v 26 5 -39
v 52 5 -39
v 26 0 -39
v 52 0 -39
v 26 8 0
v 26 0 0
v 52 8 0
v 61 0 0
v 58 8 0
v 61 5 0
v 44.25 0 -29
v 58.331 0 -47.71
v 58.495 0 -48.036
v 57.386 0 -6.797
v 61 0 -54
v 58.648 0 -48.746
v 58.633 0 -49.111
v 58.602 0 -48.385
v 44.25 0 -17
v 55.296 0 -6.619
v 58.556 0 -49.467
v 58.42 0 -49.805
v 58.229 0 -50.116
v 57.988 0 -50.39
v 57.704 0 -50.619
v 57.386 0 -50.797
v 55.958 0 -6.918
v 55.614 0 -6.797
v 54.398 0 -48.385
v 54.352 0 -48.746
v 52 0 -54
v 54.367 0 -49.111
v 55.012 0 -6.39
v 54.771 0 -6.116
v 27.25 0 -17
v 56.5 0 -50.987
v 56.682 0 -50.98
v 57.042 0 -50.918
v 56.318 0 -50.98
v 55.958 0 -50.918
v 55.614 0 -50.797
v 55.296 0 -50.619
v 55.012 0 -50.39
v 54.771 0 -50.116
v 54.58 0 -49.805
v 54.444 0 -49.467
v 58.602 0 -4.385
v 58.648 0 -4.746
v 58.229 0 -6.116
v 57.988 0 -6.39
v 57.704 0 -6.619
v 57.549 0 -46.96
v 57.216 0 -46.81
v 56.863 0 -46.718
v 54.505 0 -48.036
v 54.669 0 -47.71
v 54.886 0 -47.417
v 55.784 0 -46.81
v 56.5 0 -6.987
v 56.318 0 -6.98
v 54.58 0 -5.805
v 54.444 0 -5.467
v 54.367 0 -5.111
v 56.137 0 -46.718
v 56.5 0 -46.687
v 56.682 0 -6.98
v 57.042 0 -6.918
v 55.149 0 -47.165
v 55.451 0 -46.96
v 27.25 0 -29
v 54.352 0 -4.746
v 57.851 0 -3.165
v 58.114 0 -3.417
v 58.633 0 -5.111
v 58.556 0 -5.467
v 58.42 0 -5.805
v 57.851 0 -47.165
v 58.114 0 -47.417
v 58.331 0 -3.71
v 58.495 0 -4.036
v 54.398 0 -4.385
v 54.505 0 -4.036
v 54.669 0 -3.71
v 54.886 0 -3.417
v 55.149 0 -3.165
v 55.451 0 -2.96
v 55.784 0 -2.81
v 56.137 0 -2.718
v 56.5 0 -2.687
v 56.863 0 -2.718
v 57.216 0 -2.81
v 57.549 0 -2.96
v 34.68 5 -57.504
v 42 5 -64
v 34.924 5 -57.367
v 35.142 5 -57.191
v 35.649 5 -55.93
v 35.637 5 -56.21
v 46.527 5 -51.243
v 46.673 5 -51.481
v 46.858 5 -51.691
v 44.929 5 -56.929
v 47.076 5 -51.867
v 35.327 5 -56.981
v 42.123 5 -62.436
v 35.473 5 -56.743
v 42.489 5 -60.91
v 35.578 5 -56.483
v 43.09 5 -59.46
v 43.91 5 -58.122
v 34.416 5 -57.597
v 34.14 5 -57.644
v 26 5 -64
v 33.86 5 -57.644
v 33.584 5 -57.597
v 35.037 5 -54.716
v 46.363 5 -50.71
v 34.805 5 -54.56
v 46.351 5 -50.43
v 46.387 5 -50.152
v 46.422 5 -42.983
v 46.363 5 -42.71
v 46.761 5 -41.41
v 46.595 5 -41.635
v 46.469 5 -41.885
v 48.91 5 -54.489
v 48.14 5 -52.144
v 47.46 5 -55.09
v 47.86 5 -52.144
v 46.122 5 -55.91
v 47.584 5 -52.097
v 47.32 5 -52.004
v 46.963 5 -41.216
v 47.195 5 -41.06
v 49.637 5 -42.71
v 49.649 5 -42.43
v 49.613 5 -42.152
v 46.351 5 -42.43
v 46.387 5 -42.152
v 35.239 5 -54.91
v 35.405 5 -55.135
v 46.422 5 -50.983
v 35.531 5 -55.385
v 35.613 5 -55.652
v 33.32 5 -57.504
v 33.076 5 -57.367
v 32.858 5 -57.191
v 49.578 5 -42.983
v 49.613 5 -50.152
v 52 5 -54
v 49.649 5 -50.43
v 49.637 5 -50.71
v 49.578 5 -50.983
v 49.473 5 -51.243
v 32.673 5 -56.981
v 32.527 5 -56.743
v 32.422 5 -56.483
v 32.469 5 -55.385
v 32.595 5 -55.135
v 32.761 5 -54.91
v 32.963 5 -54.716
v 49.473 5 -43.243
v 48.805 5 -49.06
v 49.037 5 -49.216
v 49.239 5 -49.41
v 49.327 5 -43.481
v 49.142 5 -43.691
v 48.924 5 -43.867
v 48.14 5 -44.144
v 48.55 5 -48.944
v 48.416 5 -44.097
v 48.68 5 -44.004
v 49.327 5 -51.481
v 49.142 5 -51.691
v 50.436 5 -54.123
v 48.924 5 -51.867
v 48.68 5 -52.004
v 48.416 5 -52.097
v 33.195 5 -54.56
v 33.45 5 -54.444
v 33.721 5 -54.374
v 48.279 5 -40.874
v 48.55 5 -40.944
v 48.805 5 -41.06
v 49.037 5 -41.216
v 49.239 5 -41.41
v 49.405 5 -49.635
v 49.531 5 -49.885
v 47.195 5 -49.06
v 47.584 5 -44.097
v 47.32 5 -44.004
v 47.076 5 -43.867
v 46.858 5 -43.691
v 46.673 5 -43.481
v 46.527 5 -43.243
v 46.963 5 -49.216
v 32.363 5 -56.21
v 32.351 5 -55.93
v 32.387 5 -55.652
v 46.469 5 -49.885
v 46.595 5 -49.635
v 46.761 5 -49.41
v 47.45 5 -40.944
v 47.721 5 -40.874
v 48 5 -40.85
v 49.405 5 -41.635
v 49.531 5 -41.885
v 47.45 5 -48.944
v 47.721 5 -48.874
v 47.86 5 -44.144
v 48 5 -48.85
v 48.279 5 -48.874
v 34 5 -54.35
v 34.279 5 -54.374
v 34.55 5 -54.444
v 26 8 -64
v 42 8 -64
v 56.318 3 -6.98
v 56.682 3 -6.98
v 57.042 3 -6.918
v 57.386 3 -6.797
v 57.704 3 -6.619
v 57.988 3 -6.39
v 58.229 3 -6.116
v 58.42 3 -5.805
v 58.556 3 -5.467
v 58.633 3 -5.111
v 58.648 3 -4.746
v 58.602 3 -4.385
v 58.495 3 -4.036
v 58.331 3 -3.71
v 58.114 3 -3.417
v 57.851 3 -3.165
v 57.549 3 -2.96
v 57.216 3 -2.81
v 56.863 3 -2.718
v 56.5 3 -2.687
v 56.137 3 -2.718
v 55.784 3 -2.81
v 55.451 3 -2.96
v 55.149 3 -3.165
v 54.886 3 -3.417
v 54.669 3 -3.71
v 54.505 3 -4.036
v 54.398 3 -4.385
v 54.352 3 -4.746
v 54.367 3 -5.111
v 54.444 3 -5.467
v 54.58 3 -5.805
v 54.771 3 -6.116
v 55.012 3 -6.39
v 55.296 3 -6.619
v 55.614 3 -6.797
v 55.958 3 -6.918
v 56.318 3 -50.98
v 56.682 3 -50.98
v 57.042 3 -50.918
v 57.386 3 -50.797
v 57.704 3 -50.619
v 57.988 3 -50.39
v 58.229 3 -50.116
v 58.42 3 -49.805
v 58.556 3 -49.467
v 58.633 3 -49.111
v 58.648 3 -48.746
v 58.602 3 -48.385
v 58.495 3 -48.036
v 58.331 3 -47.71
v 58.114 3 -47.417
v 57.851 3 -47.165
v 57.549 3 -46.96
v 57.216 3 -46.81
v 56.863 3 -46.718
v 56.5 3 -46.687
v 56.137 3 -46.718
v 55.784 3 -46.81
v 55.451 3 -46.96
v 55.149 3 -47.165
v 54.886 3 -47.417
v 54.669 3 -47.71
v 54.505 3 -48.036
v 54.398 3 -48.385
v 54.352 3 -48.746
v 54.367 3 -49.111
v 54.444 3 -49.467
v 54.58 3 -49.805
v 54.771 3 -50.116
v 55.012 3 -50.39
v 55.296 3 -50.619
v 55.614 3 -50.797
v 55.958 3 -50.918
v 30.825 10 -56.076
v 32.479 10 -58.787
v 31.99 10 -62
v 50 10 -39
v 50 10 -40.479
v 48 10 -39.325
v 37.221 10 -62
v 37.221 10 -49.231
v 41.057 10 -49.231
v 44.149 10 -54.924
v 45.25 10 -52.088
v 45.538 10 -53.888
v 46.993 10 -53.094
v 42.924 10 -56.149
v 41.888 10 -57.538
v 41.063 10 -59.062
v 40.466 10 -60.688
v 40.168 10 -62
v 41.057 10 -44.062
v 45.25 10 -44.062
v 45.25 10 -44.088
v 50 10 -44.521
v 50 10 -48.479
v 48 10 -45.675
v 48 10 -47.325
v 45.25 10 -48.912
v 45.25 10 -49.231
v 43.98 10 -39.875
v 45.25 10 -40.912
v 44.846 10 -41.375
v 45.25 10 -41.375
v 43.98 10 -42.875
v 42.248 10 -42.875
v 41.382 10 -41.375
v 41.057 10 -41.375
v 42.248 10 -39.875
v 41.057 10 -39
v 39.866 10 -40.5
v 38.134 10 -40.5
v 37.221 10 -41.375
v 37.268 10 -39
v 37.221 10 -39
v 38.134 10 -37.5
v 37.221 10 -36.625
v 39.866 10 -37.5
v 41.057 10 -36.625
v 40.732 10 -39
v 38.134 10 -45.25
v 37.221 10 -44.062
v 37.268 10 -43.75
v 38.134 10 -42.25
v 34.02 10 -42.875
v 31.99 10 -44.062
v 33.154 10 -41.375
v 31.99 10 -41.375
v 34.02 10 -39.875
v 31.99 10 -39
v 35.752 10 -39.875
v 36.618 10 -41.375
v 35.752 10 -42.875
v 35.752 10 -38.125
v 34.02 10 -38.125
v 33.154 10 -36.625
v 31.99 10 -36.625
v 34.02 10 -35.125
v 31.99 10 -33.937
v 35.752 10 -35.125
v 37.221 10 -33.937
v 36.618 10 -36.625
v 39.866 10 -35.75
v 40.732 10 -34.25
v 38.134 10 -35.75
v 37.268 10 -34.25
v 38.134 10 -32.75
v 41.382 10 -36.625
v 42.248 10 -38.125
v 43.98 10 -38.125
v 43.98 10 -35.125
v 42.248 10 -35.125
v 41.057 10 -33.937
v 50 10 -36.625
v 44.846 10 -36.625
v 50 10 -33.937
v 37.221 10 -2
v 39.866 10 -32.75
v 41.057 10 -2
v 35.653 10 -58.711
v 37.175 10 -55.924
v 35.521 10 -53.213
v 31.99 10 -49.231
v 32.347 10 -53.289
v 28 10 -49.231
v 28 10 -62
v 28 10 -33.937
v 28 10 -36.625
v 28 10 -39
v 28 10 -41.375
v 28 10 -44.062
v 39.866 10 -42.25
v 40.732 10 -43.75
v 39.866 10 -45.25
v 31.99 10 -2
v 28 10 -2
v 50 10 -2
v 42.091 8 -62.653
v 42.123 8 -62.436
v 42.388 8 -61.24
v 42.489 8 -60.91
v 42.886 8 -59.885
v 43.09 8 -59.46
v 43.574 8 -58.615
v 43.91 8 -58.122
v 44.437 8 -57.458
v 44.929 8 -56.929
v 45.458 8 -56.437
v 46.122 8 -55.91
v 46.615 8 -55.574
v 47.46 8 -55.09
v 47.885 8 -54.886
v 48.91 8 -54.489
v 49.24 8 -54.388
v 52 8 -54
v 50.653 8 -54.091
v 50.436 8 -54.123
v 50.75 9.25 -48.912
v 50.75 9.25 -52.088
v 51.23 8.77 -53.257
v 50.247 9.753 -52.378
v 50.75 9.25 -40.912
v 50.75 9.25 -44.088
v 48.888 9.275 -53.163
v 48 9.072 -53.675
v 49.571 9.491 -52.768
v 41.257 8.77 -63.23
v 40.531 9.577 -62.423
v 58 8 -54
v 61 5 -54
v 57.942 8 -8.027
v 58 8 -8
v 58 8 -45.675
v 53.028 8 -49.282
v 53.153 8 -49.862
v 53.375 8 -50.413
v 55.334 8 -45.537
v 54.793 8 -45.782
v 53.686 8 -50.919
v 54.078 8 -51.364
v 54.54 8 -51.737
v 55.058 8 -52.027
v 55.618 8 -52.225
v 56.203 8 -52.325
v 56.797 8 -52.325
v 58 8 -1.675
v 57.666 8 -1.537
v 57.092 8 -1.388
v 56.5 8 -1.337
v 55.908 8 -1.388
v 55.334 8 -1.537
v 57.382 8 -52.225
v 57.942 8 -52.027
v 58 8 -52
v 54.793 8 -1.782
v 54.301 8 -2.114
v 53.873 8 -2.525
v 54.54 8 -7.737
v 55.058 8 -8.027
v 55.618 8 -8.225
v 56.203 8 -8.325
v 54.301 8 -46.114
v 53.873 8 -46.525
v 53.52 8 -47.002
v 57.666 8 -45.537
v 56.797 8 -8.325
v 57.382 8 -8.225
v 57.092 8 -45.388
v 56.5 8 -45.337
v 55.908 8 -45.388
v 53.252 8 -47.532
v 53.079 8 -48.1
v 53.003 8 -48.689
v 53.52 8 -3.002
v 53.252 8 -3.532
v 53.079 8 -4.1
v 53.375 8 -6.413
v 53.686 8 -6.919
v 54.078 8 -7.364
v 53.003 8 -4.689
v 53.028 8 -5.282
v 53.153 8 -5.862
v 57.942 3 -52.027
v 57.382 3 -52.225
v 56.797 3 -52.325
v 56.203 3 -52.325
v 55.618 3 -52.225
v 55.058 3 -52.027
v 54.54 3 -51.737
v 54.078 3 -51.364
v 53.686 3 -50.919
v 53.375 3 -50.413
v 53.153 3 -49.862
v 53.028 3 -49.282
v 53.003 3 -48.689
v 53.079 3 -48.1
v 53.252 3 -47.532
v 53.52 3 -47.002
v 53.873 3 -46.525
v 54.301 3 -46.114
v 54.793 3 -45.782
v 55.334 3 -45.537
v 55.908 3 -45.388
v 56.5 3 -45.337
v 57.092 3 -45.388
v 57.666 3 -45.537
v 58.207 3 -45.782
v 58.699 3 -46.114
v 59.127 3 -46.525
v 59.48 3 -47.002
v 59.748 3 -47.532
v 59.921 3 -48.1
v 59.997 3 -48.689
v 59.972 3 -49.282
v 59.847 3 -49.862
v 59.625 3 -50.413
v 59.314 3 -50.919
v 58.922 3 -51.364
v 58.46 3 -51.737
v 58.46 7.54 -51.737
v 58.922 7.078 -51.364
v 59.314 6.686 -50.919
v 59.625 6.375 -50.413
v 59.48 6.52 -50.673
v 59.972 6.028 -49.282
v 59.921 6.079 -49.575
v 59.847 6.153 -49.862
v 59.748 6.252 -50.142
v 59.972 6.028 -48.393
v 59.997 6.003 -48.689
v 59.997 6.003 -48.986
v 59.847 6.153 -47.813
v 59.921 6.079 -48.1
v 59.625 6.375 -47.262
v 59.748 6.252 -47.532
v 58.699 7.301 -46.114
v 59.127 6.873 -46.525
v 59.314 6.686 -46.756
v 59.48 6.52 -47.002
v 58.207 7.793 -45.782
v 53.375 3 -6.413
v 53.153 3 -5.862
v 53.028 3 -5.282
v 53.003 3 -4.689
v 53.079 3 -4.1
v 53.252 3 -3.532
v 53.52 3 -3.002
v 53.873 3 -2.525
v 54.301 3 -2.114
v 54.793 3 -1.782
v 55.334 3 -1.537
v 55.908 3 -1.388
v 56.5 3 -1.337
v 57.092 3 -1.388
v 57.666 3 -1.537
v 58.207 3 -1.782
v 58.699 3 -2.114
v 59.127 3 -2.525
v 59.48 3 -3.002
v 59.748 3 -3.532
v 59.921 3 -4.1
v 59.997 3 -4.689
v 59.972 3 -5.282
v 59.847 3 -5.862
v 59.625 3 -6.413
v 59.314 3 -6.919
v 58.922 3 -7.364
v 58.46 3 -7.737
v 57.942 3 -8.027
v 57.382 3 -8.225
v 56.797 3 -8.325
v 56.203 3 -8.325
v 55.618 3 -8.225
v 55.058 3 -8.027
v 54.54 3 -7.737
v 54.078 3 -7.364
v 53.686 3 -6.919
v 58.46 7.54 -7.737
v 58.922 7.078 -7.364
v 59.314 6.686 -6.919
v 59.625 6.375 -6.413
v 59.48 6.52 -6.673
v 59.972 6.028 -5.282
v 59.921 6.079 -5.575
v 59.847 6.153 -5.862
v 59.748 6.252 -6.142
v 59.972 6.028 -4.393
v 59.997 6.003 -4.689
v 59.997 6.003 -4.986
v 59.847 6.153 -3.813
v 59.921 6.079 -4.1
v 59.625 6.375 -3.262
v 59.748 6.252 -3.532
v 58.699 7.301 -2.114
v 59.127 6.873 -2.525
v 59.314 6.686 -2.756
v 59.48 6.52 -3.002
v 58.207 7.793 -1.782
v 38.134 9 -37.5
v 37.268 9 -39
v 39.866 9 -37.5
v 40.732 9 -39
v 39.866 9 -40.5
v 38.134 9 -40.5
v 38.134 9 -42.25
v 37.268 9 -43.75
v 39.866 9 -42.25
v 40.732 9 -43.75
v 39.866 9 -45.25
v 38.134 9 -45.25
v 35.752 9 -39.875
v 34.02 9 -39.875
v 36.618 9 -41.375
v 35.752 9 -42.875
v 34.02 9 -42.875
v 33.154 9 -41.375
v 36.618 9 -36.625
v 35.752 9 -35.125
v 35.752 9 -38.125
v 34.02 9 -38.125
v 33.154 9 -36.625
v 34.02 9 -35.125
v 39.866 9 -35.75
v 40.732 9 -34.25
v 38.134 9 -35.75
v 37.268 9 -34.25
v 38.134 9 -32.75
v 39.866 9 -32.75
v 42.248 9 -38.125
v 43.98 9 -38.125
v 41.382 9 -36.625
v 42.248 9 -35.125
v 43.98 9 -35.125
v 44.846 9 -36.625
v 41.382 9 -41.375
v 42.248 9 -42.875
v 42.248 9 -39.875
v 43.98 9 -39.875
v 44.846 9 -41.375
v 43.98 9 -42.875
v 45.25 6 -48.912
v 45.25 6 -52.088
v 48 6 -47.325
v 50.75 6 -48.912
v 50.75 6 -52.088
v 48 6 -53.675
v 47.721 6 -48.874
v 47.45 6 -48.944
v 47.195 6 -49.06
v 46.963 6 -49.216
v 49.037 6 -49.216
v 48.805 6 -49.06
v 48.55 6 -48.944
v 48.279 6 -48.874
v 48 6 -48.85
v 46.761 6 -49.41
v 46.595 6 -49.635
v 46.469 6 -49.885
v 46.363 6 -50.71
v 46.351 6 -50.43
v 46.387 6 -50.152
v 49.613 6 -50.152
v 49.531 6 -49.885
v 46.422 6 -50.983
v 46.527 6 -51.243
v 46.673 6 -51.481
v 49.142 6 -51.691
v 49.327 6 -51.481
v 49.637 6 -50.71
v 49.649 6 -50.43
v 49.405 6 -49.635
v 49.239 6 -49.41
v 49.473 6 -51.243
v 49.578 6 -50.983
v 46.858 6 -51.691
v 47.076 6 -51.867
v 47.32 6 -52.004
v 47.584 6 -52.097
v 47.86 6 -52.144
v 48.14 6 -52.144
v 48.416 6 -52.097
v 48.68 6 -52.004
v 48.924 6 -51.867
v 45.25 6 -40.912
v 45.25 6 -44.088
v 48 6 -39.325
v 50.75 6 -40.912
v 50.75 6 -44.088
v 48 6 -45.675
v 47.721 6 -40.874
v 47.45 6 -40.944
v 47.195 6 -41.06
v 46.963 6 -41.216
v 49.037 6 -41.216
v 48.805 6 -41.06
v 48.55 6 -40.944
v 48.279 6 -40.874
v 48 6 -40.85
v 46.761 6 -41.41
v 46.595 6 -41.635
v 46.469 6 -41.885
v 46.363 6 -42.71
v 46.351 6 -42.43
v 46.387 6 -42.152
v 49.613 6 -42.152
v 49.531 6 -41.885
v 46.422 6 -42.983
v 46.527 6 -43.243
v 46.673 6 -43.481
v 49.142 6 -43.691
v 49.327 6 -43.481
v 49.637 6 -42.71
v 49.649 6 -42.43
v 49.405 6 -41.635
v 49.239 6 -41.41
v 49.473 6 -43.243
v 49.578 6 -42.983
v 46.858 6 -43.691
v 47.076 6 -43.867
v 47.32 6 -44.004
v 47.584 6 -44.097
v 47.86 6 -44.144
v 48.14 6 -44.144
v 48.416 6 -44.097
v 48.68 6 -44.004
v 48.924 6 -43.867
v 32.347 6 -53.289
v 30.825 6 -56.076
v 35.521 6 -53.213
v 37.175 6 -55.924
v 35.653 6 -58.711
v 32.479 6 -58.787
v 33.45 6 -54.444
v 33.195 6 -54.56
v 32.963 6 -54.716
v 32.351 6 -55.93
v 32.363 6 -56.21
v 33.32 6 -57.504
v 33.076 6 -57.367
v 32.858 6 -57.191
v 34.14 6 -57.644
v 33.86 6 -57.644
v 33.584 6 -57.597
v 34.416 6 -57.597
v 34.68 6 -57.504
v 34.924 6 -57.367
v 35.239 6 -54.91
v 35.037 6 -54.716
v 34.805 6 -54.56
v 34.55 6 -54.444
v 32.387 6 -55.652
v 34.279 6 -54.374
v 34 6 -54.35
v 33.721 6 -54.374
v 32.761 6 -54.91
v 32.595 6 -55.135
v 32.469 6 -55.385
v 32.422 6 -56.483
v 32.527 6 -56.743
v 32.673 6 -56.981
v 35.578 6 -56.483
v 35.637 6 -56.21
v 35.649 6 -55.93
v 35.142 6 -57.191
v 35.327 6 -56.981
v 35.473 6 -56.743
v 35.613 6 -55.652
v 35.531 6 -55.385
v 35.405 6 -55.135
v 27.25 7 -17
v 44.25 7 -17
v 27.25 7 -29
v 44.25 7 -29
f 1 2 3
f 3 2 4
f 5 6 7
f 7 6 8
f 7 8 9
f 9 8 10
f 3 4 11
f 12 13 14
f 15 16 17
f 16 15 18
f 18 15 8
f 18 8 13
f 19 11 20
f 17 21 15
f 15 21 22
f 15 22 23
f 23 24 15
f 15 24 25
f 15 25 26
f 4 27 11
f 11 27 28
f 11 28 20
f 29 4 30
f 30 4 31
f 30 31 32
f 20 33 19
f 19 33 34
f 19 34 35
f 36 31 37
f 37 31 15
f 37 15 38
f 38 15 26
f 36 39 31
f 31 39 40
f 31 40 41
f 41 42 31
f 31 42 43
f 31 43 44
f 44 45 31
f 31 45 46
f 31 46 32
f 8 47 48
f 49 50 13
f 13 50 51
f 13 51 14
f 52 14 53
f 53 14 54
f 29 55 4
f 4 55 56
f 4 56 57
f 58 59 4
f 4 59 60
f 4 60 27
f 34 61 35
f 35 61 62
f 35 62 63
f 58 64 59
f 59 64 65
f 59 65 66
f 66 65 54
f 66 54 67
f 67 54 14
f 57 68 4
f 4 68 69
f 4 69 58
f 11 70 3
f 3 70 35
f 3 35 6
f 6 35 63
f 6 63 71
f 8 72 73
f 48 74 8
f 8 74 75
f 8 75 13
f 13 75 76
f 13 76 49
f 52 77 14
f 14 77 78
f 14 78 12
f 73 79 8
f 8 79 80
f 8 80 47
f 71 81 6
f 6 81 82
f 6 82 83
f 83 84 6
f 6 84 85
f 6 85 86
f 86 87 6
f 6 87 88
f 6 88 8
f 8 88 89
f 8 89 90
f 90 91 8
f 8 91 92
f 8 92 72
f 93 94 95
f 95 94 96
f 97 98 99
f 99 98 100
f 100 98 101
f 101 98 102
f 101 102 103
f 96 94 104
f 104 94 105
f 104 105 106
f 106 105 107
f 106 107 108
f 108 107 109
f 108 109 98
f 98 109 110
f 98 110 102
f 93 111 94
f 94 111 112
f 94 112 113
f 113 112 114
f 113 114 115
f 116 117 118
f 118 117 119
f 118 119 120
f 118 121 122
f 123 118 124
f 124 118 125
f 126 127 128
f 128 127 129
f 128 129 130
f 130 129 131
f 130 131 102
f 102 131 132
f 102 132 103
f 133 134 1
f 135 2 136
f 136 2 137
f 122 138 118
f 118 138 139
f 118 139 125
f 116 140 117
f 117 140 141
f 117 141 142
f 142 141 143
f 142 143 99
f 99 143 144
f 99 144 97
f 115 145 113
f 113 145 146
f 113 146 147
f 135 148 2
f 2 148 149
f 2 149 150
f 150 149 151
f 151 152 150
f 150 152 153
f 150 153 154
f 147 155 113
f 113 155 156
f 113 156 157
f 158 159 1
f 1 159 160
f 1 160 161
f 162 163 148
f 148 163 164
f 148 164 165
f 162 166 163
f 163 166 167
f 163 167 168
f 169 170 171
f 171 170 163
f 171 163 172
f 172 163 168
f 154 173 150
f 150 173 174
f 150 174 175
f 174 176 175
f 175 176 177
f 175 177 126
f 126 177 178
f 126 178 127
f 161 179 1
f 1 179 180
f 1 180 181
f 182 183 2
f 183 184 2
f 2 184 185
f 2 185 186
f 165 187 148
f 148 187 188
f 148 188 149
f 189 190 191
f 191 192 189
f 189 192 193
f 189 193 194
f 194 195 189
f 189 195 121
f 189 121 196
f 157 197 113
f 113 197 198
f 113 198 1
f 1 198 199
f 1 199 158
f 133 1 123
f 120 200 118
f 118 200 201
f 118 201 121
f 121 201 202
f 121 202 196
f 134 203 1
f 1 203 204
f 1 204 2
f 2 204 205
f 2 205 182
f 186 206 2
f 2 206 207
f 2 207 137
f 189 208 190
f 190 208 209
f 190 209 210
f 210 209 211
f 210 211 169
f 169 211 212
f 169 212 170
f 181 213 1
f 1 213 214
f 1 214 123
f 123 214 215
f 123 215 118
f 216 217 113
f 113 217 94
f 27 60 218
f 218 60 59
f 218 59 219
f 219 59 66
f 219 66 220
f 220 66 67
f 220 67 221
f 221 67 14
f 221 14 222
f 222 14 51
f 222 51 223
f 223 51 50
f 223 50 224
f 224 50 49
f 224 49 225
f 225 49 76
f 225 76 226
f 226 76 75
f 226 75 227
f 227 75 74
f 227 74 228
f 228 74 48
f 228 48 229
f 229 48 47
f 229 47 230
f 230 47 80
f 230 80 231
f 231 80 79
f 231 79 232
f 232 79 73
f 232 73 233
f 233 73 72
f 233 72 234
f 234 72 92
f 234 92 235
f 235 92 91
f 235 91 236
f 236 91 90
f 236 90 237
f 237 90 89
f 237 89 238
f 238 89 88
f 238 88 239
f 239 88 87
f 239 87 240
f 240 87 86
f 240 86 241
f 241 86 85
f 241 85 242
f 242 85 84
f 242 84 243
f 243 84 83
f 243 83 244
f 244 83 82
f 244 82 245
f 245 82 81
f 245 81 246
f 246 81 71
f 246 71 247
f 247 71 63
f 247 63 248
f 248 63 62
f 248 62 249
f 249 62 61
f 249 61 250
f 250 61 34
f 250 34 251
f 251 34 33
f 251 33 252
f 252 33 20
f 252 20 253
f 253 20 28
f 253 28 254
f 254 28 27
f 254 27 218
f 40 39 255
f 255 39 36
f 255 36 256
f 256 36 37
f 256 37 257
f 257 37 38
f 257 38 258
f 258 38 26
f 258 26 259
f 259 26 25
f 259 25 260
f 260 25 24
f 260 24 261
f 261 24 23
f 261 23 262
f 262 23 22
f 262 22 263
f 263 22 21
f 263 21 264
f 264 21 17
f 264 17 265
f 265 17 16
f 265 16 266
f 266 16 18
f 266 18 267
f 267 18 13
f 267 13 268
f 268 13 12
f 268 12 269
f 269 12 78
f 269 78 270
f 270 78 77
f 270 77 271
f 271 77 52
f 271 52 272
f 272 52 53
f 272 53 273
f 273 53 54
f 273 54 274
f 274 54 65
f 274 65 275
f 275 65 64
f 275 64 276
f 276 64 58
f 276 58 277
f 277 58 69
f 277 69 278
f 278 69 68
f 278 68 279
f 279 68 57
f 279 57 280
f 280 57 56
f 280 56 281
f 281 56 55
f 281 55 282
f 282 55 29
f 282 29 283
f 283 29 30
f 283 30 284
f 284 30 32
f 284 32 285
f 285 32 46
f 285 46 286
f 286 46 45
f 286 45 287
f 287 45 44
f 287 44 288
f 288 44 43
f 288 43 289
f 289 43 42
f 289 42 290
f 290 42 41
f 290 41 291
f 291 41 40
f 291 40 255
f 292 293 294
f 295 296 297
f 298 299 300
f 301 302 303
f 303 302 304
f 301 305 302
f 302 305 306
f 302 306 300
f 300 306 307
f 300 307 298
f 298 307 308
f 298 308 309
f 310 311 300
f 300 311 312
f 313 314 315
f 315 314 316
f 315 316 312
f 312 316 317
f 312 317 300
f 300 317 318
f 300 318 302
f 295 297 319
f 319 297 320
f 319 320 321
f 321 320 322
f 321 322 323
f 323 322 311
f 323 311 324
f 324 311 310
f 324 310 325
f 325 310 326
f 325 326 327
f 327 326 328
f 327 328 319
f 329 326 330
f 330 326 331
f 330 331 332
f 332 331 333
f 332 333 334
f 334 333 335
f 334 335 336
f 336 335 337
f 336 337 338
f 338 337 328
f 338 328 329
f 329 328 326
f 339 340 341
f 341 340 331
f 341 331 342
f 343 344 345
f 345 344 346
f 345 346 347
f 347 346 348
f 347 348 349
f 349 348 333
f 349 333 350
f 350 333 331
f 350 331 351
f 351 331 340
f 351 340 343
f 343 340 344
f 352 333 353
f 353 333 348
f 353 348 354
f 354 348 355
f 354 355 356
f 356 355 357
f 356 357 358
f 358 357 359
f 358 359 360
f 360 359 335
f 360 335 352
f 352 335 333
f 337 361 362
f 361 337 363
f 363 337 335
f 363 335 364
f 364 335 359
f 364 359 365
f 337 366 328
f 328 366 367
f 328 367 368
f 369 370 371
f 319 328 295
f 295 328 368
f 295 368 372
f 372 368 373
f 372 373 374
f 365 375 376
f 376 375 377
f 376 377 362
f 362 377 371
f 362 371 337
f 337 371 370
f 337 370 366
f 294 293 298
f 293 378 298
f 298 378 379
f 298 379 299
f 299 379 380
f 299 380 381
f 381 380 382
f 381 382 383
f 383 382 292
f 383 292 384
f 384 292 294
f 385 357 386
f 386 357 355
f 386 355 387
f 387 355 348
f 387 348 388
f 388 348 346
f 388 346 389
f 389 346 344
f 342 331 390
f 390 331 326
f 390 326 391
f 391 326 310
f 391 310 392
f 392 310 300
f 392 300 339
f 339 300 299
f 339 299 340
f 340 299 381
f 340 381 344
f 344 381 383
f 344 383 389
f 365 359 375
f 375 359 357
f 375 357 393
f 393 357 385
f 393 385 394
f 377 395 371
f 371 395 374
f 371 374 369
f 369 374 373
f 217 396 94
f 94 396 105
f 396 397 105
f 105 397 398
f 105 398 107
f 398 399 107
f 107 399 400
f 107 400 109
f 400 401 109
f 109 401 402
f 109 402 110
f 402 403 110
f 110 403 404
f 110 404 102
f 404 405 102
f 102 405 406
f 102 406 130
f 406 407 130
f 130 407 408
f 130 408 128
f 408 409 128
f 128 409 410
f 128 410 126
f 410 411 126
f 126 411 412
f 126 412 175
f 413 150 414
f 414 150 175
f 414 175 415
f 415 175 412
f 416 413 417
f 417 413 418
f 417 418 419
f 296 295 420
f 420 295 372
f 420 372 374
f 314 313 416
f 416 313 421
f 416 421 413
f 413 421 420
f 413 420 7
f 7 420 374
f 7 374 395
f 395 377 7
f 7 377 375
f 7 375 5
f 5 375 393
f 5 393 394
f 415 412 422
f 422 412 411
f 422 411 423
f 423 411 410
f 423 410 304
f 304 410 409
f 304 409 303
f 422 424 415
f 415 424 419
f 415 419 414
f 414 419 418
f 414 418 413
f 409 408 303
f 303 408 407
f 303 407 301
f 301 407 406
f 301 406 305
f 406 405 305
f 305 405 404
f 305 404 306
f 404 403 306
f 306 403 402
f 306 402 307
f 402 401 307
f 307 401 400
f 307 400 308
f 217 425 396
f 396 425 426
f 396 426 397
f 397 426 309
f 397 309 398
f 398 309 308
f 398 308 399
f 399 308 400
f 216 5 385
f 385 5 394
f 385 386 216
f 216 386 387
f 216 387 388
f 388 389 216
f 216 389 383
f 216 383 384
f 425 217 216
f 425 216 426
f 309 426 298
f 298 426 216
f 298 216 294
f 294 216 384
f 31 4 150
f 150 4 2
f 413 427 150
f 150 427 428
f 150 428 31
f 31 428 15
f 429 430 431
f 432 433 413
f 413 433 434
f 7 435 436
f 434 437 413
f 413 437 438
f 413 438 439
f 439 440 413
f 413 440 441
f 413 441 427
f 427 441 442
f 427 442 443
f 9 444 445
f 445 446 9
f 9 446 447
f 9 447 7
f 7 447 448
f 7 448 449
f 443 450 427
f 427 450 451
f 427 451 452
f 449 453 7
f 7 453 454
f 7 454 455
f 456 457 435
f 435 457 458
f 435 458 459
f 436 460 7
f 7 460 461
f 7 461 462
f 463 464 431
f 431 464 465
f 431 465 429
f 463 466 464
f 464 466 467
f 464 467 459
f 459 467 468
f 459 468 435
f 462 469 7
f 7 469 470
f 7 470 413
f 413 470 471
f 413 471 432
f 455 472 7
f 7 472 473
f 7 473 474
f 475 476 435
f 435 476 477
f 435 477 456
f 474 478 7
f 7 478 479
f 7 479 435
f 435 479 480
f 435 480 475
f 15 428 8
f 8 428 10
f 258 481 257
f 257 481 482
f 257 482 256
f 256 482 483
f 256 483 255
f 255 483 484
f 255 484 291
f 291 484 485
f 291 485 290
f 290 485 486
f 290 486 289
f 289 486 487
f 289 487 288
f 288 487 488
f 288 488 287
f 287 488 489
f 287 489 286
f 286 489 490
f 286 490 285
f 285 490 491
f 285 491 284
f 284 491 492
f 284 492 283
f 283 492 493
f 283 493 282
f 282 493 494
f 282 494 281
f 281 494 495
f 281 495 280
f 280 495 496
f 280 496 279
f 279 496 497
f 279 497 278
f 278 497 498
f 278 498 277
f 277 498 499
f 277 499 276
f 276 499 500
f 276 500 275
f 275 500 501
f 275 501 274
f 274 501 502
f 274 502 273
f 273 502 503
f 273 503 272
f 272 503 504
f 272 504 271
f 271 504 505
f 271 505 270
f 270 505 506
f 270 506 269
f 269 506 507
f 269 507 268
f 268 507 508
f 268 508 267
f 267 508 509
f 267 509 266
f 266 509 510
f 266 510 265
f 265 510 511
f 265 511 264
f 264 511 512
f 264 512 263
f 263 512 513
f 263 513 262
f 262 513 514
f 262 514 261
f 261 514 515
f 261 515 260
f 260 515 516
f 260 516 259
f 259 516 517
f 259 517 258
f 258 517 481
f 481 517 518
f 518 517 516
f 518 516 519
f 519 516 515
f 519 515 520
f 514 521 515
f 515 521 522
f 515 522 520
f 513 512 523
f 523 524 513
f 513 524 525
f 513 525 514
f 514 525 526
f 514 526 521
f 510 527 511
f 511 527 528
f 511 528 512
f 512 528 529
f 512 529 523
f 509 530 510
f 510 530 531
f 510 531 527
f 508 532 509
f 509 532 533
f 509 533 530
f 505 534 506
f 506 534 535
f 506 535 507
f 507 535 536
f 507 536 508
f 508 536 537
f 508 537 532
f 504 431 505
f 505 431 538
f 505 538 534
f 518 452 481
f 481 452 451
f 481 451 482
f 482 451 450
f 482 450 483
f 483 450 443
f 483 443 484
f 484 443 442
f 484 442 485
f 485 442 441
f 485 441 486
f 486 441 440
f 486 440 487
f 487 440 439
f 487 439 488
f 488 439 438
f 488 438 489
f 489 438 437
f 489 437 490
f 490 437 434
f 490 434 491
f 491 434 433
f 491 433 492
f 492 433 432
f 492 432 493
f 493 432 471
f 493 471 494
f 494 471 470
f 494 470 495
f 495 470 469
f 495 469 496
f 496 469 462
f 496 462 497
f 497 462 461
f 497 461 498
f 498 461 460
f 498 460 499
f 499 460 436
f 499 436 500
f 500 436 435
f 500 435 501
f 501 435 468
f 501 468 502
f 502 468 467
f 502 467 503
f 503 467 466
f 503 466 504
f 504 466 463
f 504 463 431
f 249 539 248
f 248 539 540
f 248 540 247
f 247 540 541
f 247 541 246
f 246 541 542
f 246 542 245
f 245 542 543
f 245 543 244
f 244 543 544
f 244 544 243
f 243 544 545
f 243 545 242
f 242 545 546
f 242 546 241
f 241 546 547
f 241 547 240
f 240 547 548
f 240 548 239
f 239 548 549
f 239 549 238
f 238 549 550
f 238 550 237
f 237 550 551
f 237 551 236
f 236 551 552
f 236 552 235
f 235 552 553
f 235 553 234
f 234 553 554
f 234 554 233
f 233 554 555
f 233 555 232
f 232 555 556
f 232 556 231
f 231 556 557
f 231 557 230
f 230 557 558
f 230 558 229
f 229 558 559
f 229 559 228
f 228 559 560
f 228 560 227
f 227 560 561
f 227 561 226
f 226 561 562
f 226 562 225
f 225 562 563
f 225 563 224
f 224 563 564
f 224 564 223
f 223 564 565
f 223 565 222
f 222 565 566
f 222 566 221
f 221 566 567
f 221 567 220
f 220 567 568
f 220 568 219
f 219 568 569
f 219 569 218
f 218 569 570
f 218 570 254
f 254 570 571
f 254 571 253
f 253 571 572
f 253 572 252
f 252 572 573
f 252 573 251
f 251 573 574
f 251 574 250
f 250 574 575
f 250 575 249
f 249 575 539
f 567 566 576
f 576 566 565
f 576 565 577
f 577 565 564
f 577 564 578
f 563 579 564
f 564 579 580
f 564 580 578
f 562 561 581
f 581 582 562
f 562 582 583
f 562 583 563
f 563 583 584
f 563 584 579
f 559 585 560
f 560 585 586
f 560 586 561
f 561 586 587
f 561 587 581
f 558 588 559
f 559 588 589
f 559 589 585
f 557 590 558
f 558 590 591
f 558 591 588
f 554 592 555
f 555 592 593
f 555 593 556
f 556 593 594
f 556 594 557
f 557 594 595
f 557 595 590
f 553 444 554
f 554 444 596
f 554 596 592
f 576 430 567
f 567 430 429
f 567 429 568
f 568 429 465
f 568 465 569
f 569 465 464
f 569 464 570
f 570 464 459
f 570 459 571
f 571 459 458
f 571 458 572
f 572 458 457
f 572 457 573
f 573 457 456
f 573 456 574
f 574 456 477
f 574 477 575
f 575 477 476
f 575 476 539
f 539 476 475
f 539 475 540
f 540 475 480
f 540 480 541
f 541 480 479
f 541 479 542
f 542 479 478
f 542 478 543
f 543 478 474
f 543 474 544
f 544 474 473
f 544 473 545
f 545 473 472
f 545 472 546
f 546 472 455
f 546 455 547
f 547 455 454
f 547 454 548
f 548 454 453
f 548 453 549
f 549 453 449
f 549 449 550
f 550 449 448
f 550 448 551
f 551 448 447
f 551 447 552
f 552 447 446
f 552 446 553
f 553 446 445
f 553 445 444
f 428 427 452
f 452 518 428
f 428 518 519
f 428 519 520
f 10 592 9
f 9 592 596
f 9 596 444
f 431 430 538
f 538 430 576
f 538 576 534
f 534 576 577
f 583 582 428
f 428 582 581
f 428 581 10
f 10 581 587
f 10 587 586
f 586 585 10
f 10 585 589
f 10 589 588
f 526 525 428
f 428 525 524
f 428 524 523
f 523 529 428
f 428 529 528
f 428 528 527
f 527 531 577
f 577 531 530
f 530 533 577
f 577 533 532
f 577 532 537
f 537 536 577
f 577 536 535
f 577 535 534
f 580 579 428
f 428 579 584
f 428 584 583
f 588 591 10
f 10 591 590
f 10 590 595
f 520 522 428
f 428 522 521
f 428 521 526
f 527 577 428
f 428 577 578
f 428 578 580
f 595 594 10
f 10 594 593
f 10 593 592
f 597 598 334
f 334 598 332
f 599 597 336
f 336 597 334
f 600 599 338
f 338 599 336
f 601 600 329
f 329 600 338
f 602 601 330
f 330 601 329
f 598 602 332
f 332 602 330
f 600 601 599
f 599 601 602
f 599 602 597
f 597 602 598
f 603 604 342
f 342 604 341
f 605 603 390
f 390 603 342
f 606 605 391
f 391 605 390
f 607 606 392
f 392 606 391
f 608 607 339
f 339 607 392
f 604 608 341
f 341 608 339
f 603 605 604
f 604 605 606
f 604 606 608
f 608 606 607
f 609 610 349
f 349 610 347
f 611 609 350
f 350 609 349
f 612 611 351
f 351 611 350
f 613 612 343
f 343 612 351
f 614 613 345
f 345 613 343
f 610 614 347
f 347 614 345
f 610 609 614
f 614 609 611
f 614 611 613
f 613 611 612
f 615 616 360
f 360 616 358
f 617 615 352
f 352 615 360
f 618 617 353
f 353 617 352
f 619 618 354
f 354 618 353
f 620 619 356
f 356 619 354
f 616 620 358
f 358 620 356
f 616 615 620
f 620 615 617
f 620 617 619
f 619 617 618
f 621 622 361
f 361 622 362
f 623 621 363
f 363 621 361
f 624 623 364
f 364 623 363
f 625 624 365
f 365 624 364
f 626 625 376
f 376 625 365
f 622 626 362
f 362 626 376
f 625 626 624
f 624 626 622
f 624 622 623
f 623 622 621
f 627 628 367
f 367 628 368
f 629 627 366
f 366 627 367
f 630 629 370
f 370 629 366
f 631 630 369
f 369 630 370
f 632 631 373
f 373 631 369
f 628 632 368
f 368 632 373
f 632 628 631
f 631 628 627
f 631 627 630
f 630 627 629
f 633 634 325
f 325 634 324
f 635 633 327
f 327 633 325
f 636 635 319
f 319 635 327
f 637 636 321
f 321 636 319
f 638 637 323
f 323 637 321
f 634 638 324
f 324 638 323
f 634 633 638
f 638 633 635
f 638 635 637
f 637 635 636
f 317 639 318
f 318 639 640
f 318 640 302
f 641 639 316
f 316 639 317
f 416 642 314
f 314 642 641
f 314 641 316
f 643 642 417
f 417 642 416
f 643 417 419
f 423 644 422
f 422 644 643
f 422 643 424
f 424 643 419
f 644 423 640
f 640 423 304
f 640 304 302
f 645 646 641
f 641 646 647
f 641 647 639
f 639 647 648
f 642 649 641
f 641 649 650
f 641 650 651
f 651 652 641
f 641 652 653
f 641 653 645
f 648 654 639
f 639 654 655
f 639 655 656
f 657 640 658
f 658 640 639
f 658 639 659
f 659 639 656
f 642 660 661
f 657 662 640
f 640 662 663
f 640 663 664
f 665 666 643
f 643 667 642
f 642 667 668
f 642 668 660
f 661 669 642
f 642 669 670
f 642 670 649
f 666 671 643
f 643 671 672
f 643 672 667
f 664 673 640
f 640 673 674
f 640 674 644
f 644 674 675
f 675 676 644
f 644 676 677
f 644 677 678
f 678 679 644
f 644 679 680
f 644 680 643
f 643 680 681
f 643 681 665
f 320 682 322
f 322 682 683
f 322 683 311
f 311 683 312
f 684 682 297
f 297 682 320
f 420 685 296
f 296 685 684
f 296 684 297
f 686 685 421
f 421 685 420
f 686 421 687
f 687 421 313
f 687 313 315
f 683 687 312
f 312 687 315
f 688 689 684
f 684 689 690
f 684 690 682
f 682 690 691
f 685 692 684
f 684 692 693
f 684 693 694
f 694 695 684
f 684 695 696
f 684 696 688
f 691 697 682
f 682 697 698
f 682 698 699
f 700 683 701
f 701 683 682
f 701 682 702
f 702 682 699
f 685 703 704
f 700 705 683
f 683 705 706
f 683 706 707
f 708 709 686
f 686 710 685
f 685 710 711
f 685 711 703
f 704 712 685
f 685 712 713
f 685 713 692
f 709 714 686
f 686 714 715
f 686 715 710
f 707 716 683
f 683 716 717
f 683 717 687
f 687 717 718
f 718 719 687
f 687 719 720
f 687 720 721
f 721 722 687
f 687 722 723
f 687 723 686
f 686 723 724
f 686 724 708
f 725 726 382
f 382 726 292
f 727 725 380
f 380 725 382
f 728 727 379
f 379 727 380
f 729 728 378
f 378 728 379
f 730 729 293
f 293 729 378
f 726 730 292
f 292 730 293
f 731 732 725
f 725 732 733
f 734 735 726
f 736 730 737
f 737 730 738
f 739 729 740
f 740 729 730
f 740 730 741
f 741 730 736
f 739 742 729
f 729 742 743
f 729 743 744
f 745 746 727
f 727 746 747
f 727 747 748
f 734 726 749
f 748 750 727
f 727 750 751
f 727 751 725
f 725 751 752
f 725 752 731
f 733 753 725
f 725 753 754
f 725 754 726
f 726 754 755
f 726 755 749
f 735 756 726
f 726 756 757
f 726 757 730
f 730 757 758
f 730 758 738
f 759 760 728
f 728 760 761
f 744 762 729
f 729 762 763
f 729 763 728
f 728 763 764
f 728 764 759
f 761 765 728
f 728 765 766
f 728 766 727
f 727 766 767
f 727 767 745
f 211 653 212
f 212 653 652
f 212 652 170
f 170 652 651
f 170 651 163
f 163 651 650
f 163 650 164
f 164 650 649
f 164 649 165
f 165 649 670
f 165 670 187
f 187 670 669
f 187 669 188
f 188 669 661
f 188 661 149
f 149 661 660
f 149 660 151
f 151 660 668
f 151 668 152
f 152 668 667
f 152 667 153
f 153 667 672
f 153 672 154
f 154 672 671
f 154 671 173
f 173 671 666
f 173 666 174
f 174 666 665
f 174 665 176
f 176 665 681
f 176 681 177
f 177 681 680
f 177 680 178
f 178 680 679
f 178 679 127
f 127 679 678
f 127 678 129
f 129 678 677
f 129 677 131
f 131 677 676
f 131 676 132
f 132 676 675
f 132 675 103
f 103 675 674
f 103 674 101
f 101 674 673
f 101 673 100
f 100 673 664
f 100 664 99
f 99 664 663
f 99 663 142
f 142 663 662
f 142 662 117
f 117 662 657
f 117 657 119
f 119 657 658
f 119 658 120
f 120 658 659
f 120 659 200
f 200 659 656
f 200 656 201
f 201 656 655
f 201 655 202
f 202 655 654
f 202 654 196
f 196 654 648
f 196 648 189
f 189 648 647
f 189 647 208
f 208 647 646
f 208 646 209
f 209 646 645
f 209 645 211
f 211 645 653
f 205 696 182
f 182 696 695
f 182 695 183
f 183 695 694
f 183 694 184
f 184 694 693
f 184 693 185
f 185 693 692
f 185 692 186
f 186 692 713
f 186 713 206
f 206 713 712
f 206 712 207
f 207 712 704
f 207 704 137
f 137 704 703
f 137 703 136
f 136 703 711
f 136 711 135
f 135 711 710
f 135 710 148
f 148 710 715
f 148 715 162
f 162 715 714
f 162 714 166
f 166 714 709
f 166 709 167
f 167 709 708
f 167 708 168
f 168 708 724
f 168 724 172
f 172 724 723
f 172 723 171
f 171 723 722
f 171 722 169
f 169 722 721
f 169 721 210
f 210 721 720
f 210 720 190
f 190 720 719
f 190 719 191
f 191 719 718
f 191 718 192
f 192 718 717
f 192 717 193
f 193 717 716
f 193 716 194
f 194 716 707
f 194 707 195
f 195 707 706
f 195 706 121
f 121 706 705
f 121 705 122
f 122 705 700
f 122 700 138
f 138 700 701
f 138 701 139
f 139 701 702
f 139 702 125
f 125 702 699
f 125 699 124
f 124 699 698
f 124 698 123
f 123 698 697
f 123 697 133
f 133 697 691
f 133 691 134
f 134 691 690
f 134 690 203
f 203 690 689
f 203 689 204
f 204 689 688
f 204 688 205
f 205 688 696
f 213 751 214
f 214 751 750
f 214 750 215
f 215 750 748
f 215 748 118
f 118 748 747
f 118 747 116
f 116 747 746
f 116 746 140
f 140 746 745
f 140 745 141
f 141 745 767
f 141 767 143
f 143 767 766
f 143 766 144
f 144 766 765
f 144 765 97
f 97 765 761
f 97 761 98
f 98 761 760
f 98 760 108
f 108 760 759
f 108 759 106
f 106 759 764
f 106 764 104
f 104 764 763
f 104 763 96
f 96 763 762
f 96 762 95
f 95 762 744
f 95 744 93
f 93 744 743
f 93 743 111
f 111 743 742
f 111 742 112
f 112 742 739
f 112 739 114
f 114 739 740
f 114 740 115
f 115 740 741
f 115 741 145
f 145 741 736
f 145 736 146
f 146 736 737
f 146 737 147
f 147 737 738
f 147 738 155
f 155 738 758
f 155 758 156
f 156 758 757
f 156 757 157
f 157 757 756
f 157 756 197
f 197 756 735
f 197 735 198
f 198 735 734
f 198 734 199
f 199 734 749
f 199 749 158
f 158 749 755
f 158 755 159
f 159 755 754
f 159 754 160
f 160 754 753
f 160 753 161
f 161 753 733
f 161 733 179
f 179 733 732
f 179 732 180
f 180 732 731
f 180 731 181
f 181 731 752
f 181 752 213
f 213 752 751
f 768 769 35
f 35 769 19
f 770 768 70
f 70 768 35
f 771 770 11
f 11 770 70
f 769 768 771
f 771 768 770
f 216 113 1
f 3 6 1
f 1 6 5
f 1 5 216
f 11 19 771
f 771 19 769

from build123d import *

# Parameters (mm, degrees)
SKETCH1_W           = 26
SKETCH1_H           = 39
BOSS_EXTRUDE1_DEPTH = 10
SKETCH2_W           = 26
SKETCH2_H           = 5
BOSS_EXTRUDE2_DEPTH = 25
CUT_EXTRUDE1_REACH  = 71.8
CHAMFER1_SIZE       = 2
SKETCH4_W           = 54
SKETCH4_H           = 8
BOSS_EXTRUDE3_DEPTH = 9
CUT_EXTRUDE2_REACH  = 71.541
SKETCH5_R           = 2.15
SKETCH6_R           = 3.5
CUT_EXTRUDE3_DEPTH  = 5
CHAMFER3_SIZE       = 3
CUT_EXTRUDE5_DEPTH  = 1
CUT_EXTRUDE6_DEPTH  = 4
CUT_EXTRUDE7_REACH  = 71.8
SKETCH12_R          = 1.65
SKETCH14_W          = 12
SKETCH14_H          = 12
CUT_EXTRUDE9_DEPTH  = 7
SKETCH15_W          = 37.46707609
SKETCH15_H          = 12.719450185
CUT_EXTRUDE10_DEPTH = 89.977525252
SKETCH16_W          = 5
SKETCH16_H          = 12
CUT_EXTRUDE11_DEPTH = 7


with BuildPart() as part:
    # Sketch1 → Boss-Extrude1 (new body)
    with BuildSketch(Plane(origin=(0, 0, 0), x_dir=(1, 0, 0), z_dir=(0, 1, 0))):
        with Locations((13, 19.5)):
            Rectangle(SKETCH1_W, SKETCH1_H)
    extrude(amount=BOSS_EXTRUDE1_DEPTH)

    # Sketch2 → Boss-Extrude2 (add)
    with BuildSketch(Plane(origin=(0, 0, -39), x_dir=(-1, 0, 0), z_dir=(0, 0, -1))):
        with Locations((-13, 7.5)):
            Rectangle(SKETCH2_W, SKETCH2_H)
    extrude(amount=BOSS_EXTRUDE2_DEPTH)

    # Sketch3 → Cut-Extrude1 (cut, up to next)
    with BuildSketch(Plane(origin=(0, 10, 0), x_dir=(1, 0, 0), z_dir=(0, 1, 0)), mode=Mode.PRIVATE) as cut_extrude1_sk1:
        with BuildLine():
            Line((0, 54), (0, 64))
            Line((0, 64), (10, 64))
            ThreePointArc((10, 64), (7.071067812, 56.928932188), (0, 54))
        make_face()
    cut_extrude1_tool1 = extrude(cut_extrude1_sk1.sketch, amount=-CUT_EXTRUDE1_REACH, mode=Mode.PRIVATE) & part.part
    add(cut_extrude1_tool1.solids().sort_by_distance((4.244132, 10, -59.755868))[0], mode=Mode.SUBTRACT)

    # Chamfer1
    chamfer1_edges = [part.edges().sort_by_distance(p)[0] for p in [
        (26, 10, -32),
        (18, 10, -64),
        (0, 10, -27),
        (7.071067812, 10, -56.928932188),
        (13, 10, 0),
    ]]
    chamfer(chamfer1_edges, length=CHAMFER1_SIZE)

    # Sketch4 → Boss-Extrude3 (add)
    with BuildSketch(Plane.ZY):
        with Locations((-27, 4)):
            Rectangle(SKETCH4_W, SKETCH4_H)
    extrude(amount=BOSS_EXTRUDE3_DEPTH)

    # Sketch5 → Cut-Extrude2 (cut, up to next)
    with BuildSketch(Plane(origin=(0, 8, 0), x_dir=(1, 0, 0), z_dir=(0, 1, 0)), mode=Mode.PRIVATE) as cut_extrude2_sk1:
        with Locations(Location((-4.5, 48.837478231, 0), (0, 0, 270))):
            Circle(SKETCH5_R)
    cut_extrude2_tool1 = extrude(cut_extrude2_sk1.sketch, amount=-CUT_EXTRUDE2_REACH, mode=Mode.PRIVATE) & part.part
    # Sketch5 → Cut-Extrude2 (cut, up to next)
    with BuildSketch(Plane(origin=(0, 8, 0), x_dir=(1, 0, 0), z_dir=(0, 1, 0)), mode=Mode.PRIVATE) as cut_extrude2_sk2:
        with Locations(Location((-4.5, 4.837478231, 0), (0, 0, 270))):
            Circle(SKETCH5_R)
    cut_extrude2_tool2 = extrude(cut_extrude2_sk2.sketch, amount=-CUT_EXTRUDE2_REACH, mode=Mode.PRIVATE) & part.part
    add(cut_extrude2_tool1.solids().sort_by_distance((-4.5, 8, -48.837478))[0], mode=Mode.SUBTRACT)
    add(cut_extrude2_tool2.solids().sort_by_distance((-4.5, 8, -4.837478))[0], mode=Mode.SUBTRACT)

    # Sketch6 → Cut-Extrude3 (cut)
    with BuildSketch(Plane(origin=(0, 8, 0), x_dir=(1, 0, 0), z_dir=(0, 1, 0))):
        with Locations(Location((-4.5, 48.837478231, 0), (0, 0, 270))):
            Circle(SKETCH6_R)
        with Locations(Location((-4.5, 4.837478231, 0), (0, 0, 270))):
            Circle(SKETCH6_R)
    extrude(amount=-CUT_EXTRUDE3_DEPTH, mode=Mode.SUBTRACT)

    # Chamfer3
    # the kernel refuses this chamfer: 3 mm, written as the material it takes off along each edge
    with BuildSketch(Plane(origin=(-9, 8, -61.715048964), x_dir=(-0.0274958766105862, -0.9996219169112968, 0), z_dir=(0, 0, 1))) as chamfer3_piece_1:
        Polygon((CHAMFER3_SIZE * 0.999621916911, CHAMFER3_SIZE * 0.0274958766106), (-CHAMFER3_SIZE * 0.0274958766106, CHAMFER3_SIZE * 0.999621916911), (0, 0), align=None)
    extrude(amount=69.430097928, mode=Mode.SUBTRACT)

    # Sketch10 → Cut-Extrude5 (cut)
    with BuildSketch(Plane(origin=(0, 10, 0), x_dir=(1, 0, 0), z_dir=(0, 1, 0))):
        Polygon((14.732050808, 39), (13.866025404, 40.5), (12.133974596, 40.5), (11.267949192, 39), (12.133974596, 37.5), (13.866025404, 37.5), align=None)
        Polygon((14.732050808, 43.75), (13.866025404, 45.25), (12.133974596, 45.25), (11.267949192, 43.75), (12.133974596, 42.25), (13.866025404, 42.25), align=None)
        Polygon((17.979646072, 39.875), (18.845671476, 41.375), (17.979646072, 42.875), (16.247595264, 42.875), (15.38156986, 41.375), (16.247595264, 39.875), align=None)
        Polygon((16.247595264, 35.125), (17.979646072, 35.125), (18.845671476, 36.625), (17.979646072, 38.125), (16.247595264, 38.125), (15.38156986, 36.625), align=None)
        Polygon((11.267949192, 34.25), (12.133974596, 32.75), (13.866025404, 32.75), (14.732050808, 34.25), (13.866025404, 35.75), (12.133974596, 35.75), align=None)
        Polygon((8.020353928, 38.125), (7.154328524, 36.625), (8.020353928, 35.125), (9.752404736, 35.125), (10.61843014, 36.625), (9.752404736, 38.125), align=None)
        Polygon((9.752404736, 42.875), (8.020353928, 42.875), (7.154328524, 41.375), (8.020353928, 39.875), (9.752404736, 39.875), (10.61843014, 41.375), align=None)
    extrude(amount=-CUT_EXTRUDE5_DEPTH, mode=Mode.SUBTRACT)

    # Sketch11 → Cut-Extrude6 (cut)
    with BuildSketch(Plane(origin=(0, 10, 0), x_dir=(1, 0, 0), z_dir=(0, 1, 0))):
        Polygon((6.75, 44.08771324), (4, 45.675426481), (1.25, 44.08771324), (1.25, 40.91228676), (4, 39.324573519), (6.75, 40.91228676), align=None)
        Polygon((6.75, 52.08771324), (4, 53.675426481), (1.25, 52.08771324), (1.25, 48.91228676), (4, 47.324573519), (6.75, 48.91228676), align=None)
        Polygon((21.174508901, 56.076331968), (19.521149027, 58.787371337), (16.346640126, 58.711039369), (14.825491099, 55.923668032), (16.478850973, 53.212628663), (19.653359874, 53.288960631), align=None)
    extrude(amount=-CUT_EXTRUDE6_DEPTH, mode=Mode.SUBTRACT)

    # Sketch12 → Cut-Extrude7 (cut, up to next)
    with BuildSketch(Plane(origin=(0, 10, 0), x_dir=(1, 0, 0), z_dir=(0, 1, 0)), mode=Mode.PRIVATE) as cut_extrude7_sk1:
        with Locations(Location((4, 50.5, 0), (0, 0, 270))):
            Circle(SKETCH12_R)
    cut_extrude7_tool1 = extrude(cut_extrude7_sk1.sketch, amount=-CUT_EXTRUDE7_REACH, mode=Mode.PRIVATE) & part.part
    # Sketch12 → Cut-Extrude7 (cut, up to next)
    with BuildSketch(Plane(origin=(0, 10, 0), x_dir=(1, 0, 0), z_dir=(0, 1, 0)), mode=Mode.PRIVATE) as cut_extrude7_sk2:
        with Locations(Location((4, 42.5, 0), (0, 0, 270))):
            Circle(SKETCH12_R)
    cut_extrude7_tool2 = extrude(cut_extrude7_sk2.sketch, amount=-CUT_EXTRUDE7_REACH, mode=Mode.PRIVATE) & part.part
    # Sketch12 → Cut-Extrude7 (cut, up to next)
    with BuildSketch(Plane(origin=(0, 10, 0), x_dir=(1, 0, 0), z_dir=(0, 1, 0)), mode=Mode.PRIVATE) as cut_extrude7_sk3:
        with Locations(Location((18, 56, 0), (0, 0, 270))):
            Circle(SKETCH12_R)
    cut_extrude7_tool3 = extrude(cut_extrude7_sk3.sketch, amount=-CUT_EXTRUDE7_REACH, mode=Mode.PRIVATE) & part.part
    add(cut_extrude7_tool1.solids().sort_by_distance((4, 10, -50.5))[0], mode=Mode.SUBTRACT)
    add(cut_extrude7_tool2.solids().sort_by_distance((4, 10, -42.5))[0], mode=Mode.SUBTRACT)
    add(cut_extrude7_tool3.solids().sort_by_distance((18, 10, -56))[0], mode=Mode.SUBTRACT)

    # Sketch14 → Cut-Extrude9 (cut)
    with BuildSketch(Plane.XZ):
        with Locations((18.75, -23)):
            Rectangle(SKETCH14_W, SKETCH14_H)
    extrude(amount=-CUT_EXTRUDE9_DEPTH, mode=Mode.SUBTRACT)

    # Mirror3: part across plane


with BuildPart() as part_1:
    add(part.part)
    add(part.part.mirror(Plane(origin=(26, 0, 0), x_dir=(0, 0, 1), z_dir=(1, 0, 0))))

    # Sketch15 → Cut-Extrude10 (cut, through all)
    with BuildSketch(Plane.XY):
        with Locations((7.266461955, 6.359725093)):
            Rectangle(SKETCH15_W, SKETCH15_H)
    extrude(amount=-CUT_EXTRUDE10_DEPTH, mode=Mode.SUBTRACT)

    # Sketch16 → Cut-Extrude11 (cut)
    with BuildSketch(Plane.XZ):
        with Locations((41.75, -23)):
            Rectangle(SKETCH16_W, SKETCH16_H)
    extrude(amount=-CUT_EXTRUDE11_DEPTH, mode=Mode.SUBTRACT)


solid = part_1.part
